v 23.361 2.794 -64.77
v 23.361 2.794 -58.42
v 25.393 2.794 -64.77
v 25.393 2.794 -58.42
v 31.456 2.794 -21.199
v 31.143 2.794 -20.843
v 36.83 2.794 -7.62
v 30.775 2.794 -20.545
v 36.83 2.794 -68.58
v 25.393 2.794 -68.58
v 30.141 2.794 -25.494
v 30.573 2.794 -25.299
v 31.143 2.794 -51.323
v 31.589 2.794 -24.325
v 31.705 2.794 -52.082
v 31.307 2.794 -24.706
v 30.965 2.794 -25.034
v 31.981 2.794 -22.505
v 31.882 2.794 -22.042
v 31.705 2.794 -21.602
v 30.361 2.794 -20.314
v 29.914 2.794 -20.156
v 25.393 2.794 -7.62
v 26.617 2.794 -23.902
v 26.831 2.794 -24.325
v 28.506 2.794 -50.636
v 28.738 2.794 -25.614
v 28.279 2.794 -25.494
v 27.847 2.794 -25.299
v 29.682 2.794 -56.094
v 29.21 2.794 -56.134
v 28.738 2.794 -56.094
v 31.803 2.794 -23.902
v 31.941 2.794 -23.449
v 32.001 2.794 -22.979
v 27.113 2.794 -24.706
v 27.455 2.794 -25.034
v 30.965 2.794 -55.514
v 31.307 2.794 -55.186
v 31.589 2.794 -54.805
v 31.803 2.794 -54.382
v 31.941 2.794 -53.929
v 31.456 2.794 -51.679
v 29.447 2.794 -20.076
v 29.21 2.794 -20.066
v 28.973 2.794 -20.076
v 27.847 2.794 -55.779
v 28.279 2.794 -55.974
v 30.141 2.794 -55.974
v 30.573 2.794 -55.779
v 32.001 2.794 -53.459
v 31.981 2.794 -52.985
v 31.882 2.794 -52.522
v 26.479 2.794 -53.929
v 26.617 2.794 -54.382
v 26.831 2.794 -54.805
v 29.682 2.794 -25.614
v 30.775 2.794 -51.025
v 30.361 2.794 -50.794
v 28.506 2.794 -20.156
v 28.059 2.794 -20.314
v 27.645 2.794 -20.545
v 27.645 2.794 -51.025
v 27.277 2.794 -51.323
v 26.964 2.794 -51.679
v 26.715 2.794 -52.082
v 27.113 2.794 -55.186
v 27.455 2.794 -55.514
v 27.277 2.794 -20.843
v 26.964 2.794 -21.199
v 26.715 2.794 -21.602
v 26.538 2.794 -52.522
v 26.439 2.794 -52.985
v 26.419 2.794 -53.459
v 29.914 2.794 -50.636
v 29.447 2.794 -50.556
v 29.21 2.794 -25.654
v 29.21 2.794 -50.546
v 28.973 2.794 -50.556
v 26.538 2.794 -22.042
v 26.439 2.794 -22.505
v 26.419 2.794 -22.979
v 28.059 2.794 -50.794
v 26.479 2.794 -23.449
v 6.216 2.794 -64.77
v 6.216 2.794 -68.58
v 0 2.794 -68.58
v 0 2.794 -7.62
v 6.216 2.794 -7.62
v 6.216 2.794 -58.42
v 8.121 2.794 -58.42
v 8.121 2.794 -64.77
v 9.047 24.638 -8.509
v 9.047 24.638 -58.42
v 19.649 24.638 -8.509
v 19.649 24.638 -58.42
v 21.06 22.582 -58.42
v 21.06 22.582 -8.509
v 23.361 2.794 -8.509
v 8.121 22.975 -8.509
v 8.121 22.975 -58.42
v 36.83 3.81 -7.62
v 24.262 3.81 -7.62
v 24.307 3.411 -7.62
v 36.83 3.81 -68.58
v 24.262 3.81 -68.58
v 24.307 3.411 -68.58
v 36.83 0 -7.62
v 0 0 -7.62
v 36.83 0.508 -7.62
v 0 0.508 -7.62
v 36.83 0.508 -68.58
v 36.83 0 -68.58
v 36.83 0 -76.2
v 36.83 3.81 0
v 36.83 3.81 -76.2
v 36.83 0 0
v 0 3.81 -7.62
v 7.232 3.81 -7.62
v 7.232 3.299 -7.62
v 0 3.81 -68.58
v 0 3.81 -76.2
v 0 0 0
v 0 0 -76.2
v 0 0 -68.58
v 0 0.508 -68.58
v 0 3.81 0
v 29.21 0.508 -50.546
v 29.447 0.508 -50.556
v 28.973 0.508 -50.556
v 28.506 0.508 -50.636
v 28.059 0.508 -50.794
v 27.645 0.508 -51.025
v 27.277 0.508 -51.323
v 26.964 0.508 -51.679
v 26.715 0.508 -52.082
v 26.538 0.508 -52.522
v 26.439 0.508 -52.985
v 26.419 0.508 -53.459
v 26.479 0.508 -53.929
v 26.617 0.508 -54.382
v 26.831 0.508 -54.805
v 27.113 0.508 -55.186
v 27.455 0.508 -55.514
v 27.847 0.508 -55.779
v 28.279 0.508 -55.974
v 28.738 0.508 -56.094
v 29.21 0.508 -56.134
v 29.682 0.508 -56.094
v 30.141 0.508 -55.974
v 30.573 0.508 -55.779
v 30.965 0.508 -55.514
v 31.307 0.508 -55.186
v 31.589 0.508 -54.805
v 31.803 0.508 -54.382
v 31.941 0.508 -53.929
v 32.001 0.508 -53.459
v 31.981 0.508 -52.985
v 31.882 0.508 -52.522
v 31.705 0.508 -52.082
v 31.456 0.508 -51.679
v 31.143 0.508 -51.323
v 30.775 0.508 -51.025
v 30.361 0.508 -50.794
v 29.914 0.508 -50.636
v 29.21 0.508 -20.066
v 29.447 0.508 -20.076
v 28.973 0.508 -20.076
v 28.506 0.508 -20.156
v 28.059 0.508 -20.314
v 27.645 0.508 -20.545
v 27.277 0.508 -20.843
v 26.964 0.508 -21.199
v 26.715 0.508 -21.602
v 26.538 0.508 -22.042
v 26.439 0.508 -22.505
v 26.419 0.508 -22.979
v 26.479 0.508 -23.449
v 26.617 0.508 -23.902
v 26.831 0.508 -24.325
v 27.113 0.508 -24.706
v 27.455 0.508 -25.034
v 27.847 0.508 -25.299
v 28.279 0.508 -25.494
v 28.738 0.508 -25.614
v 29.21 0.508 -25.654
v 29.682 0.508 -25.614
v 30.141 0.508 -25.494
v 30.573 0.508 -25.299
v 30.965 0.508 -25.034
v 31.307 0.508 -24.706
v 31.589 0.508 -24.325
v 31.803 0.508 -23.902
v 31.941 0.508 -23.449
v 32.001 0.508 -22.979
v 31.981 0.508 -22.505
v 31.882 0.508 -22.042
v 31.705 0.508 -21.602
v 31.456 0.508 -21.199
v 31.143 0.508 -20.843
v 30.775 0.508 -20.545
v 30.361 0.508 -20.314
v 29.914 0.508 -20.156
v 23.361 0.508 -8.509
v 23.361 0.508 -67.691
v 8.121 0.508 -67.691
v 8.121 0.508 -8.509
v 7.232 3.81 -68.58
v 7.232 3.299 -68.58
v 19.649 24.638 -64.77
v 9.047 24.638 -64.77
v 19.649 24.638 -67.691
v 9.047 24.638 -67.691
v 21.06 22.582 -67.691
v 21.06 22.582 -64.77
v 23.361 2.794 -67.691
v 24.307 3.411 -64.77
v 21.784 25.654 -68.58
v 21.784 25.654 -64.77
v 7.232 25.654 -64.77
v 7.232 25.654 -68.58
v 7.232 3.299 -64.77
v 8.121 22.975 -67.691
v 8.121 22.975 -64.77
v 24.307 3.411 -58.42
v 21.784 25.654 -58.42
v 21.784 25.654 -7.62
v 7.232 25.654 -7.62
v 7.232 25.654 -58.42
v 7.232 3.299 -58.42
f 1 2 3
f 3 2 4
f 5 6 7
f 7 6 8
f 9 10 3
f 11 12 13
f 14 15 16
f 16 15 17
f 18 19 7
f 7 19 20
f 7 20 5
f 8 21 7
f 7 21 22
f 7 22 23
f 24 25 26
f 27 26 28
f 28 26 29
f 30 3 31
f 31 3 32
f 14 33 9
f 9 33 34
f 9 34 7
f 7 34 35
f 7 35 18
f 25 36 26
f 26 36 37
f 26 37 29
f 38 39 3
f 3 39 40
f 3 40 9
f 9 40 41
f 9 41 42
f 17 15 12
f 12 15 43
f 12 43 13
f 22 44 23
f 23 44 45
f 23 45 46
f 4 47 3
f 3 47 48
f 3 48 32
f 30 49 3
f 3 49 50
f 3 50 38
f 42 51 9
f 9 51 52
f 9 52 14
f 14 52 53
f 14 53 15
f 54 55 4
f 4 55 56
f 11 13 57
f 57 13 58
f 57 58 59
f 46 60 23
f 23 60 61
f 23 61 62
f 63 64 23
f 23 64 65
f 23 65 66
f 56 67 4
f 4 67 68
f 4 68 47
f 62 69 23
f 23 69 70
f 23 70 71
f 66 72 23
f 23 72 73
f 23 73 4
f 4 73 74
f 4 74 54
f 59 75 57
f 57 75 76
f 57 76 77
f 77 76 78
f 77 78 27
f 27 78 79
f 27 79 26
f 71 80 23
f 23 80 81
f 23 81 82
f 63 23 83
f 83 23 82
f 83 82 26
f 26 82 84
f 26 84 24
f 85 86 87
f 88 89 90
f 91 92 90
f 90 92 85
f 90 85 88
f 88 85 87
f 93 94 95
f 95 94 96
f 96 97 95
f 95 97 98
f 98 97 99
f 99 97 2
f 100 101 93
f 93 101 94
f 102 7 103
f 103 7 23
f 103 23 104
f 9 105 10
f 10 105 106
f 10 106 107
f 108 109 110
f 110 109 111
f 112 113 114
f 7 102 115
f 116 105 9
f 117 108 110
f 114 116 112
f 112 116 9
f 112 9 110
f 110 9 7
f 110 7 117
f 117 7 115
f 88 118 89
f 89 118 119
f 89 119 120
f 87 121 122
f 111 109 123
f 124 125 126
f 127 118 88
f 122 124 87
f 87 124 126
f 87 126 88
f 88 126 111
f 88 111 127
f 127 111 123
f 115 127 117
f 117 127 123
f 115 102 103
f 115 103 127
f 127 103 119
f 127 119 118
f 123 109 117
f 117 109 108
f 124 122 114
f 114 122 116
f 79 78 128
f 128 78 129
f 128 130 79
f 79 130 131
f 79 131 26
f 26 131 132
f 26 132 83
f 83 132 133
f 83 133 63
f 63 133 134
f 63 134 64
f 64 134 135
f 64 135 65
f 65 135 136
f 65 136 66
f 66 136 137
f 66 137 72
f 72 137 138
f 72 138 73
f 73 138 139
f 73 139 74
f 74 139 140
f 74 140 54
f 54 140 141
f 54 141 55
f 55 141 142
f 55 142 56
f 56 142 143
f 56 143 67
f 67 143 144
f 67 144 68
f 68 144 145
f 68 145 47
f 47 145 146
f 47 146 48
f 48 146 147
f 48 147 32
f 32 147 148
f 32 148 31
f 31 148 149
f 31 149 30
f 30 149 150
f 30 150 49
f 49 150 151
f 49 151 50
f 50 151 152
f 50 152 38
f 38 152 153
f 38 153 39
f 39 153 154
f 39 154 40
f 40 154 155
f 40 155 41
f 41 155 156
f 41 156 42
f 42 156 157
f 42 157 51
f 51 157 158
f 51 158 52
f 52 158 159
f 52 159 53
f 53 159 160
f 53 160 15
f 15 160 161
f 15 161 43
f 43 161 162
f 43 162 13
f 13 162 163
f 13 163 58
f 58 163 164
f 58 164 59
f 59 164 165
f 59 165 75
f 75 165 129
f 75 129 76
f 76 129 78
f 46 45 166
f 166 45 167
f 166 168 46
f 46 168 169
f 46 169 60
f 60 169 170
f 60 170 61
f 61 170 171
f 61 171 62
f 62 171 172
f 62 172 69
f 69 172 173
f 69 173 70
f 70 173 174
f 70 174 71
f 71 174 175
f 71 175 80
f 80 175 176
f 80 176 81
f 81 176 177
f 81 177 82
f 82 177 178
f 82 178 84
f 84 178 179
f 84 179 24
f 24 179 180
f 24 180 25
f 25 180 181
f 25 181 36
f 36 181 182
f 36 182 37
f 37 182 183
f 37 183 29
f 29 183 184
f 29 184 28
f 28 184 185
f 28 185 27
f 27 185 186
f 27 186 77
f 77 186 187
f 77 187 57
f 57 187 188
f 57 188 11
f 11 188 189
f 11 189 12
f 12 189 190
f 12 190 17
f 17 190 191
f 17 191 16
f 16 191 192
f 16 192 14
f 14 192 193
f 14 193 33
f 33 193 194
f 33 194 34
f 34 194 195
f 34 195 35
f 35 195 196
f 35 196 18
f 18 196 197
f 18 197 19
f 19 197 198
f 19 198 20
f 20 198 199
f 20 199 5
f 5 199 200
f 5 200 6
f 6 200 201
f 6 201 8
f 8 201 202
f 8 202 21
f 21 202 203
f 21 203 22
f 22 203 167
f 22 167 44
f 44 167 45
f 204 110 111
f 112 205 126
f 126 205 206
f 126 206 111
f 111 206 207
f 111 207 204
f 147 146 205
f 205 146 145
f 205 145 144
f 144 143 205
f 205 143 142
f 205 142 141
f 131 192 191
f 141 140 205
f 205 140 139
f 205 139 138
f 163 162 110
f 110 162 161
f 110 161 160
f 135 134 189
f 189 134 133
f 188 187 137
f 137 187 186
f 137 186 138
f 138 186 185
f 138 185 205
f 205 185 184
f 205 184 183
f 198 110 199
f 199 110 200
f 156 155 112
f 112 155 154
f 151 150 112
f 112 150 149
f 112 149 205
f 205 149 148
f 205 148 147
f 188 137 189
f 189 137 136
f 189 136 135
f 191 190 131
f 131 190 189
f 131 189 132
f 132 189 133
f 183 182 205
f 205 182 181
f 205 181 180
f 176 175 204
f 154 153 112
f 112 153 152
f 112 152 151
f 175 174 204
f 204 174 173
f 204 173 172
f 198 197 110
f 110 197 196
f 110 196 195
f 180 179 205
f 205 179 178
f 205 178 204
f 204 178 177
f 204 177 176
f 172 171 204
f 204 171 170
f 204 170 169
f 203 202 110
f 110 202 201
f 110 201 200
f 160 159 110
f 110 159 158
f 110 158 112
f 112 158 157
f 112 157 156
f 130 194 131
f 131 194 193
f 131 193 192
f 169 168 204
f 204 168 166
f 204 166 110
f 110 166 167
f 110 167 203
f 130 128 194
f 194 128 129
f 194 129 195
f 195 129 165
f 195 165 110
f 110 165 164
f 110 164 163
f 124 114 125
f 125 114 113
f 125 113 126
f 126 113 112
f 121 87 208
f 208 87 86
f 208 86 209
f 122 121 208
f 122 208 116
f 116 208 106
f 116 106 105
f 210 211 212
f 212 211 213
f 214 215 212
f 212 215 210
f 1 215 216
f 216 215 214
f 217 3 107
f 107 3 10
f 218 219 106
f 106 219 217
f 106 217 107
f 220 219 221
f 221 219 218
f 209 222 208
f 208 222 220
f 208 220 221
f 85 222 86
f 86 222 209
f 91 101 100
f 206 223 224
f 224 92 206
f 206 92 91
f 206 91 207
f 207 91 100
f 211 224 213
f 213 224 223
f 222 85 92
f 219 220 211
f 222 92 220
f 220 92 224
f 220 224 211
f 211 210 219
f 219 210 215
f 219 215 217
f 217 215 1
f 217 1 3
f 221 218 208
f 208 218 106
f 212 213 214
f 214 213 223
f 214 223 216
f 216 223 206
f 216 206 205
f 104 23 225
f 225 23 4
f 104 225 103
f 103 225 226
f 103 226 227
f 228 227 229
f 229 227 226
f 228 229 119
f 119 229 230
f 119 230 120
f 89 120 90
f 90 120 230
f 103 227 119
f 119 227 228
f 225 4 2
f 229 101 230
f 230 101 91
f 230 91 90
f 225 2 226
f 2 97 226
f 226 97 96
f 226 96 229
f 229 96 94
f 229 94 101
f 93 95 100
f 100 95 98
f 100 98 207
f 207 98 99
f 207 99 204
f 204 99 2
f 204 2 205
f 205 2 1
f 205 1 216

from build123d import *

# Parameters (mm, degrees)
BOSS_EXTRUDE2_DEPTH   = 3.81
BOSS_EXTRUDE2_2_DEPTH = 3.81
BOSS_EXTRUDE3_START   = 0.508
SKETCH2_3_R           = 2.794
BOSS_EXTRUDE3_DEPTH   = 2.286
BOSS_EXTRUDE11_DEPTH  = 3.81
BOSS_EXTRUDE12_DEPTH  = 0.889
BOSS_EXTRUDE14_START  = 10.16
BOSS_EXTRUDE14_DEPTH  = 50.8
BOSS_EXTRUDE17_START  = 60.071
BOSS_EXTRUDE17_DEPTH  = 0.889
SKETCH14_W            = 15.24
SKETCH14_H            = 59.182
CUT_EXTRUDE3_DEPTH    = 88.666803866


with BuildPart() as part:
    # Sketch2 → Boss-Extrude2 (new body)
    with BuildSketch(Plane(origin=(0, 0, 0), x_dir=(1, 0, 0), z_dir=(0, 1, 0))):
        Polygon((0, 7.62), (0, 0), (36.83, 0), (36.83, 7.62), (7.62, 7.62), (6.87, 7.62), align=None)
    extrude(amount=BOSS_EXTRUDE2_DEPTH)



with BuildPart() as body_2:
    # Sketch2 → Boss-Extrude2 2 (new body)
    with BuildSketch(Plane(origin=(0, 0, 0), x_dir=(1, 0, 0), z_dir=(0, 1, 0))):
        Polygon((0, 76.2), (0, 68.58), (6.87, 68.58), (7.62, 68.58), (36.83, 68.58), (36.83, 76.2), align=None)
    extrude(amount=BOSS_EXTRUDE2_2_DEPTH)


with BuildPart() as part_1:
    add(part.part)

    add(body_2.part)  # Boss-Extrude3 merges body 2
    # Sketch2<3> → Boss-Extrude3 (add)
    # profile 1 of 2: a face of its own
    with BuildSketch(Plane(origin=(0, 0, 0), x_dir=(1, 0, 0), z_dir=(0, 1, 0)).offset(BOSS_EXTRUDE3_START)):
        Polygon((0, 68.58), (0, 7.62), (6.87, 7.62), (7.62, 7.62), (36.83, 7.62), (36.83, 68.58), (7.62, 68.58), (6.87, 68.58), align=None)
        with Locations(Location((29.21, 22.86, 0), (0, 0, 270))):
            Circle(SKETCH2_3_R, mode=Mode.SUBTRACT)
        with Locations(Location((29.21, 53.34, 0), (0, 0, 270))):
            Circle(SKETCH2_3_R, mode=Mode.SUBTRACT)
    # profile 2 of 2: a face of its own
    with BuildSketch(Plane(origin=(0, 0, 0), x_dir=(1, 0, 0), z_dir=(0, 1, 0)).offset(BOSS_EXTRUDE3_START)):
        Polygon((0, 68.58), (0, 7.62), (6.87, 7.62), (7.62, 7.62), (36.83, 7.62), (36.83, 68.58), (7.62, 68.58), (6.87, 68.58), align=None)
        with Locations(Location((29.21, 22.86, 0), (0, 0, 270))):
            Circle(SKETCH2_3_R, mode=Mode.SUBTRACT)
        with Locations(Location((29.21, 53.34, 0), (0, 0, 270))):
            Circle(SKETCH2_3_R, mode=Mode.SUBTRACT)
    extrude(amount=BOSS_EXTRUDE3_DEPTH)

    # Sketch13 → Boss-Extrude11 (add)
    with BuildSketch(Plane.XY.offset(-68.58)):
        Polygon((6.215980089, 2.794), (7.231980089, 2.794), (7.231980089, 3.298518966), align=None)
        Polygon((8.120980089, 2.794), (8.120980089, 3.81), (7.231980089, 3.81), (7.231980089, 3.298518966), (7.231980089, 2.794), align=None)
        Polygon((8.120980089, 3.81), (8.120980089, 22.975432281), (8.120980089, 24.638), (9.046534916, 24.638), (19.649280137, 24.638), (20.820980089, 24.638), (21.060045846, 22.582034491), (23.242840554, 3.81), (24.261745737, 3.81), (21.784207173, 25.654), (7.231980089, 25.654), (7.231980089, 3.81), align=None)
        Polygon((8.120980089, 24.638), (8.120980089, 22.975432281), (9.046534916, 24.638), align=None)
        Polygon((20.820980089, 24.638), (19.649280137, 24.638), (21.060045846, 22.582034491), align=None)
        Polygon((24.261745737, 3.81), (23.242840554, 3.81), (23.360980089, 2.794), (24.376980089, 2.794), (24.307041878, 3.410632288), align=None)
        Polygon((24.307041878, 3.410632288), (24.376980089, 2.794), (25.392980089, 2.794), align=None)
    extrude(amount=BOSS_EXTRUDE11_DEPTH)

    # Sketch13<3> → Boss-Extrude12 (add)
    with BuildSketch(Plane.XY.offset(-68.58)):
        Polygon((9.046534916, 24.638), (8.120980089, 22.975432281), (8.120980089, 3.81), (23.242840554, 3.81), (21.060045846, 22.582034491), (19.649280137, 24.638), align=None)
        Polygon((23.242840554, 3.81), (8.120980089, 3.81), (8.120980089, 2.794), (23.360980089, 2.794), align=None)
    extrude(amount=BOSS_EXTRUDE12_DEPTH)

    # Sketch13<6> → Boss-Extrude14 (add)
    with BuildSketch(Plane.XY.offset(-68.58).offset(BOSS_EXTRUDE14_START)):
        Polygon((24.307041878, 3.410632288), (24.376980089, 2.794), (25.392980089, 2.794), align=None)
        Polygon((24.261745737, 3.81), (23.242840554, 3.81), (23.360980089, 2.794), (24.376980089, 2.794), (24.307041878, 3.410632288), align=None)
        Polygon((8.120980089, 2.794), (8.120980089, 3.81), (7.231980089, 3.81), (7.231980089, 3.298518966), (7.231980089, 2.794), align=None)
        Polygon((6.215980089, 2.794), (7.231980089, 2.794), (7.231980089, 3.298518966), align=None)
        Polygon((8.120980089, 3.81), (8.120980089, 22.975432281), (8.120980089, 24.638), (9.046534916, 24.638), (19.649280137, 24.638), (20.820980089, 24.638), (21.060045846, 22.582034491), (23.242840554, 3.81), (24.261745737, 3.81), (21.784207173, 25.654), (7.231980089, 25.654), (7.231980089, 3.81), align=None)
        Polygon((20.820980089, 24.638), (19.649280137, 24.638), (21.060045846, 22.582034491), align=None)
        Polygon((8.120980089, 24.638), (8.120980089, 22.975432281), (9.046534916, 24.638), align=None)
    extrude(amount=BOSS_EXTRUDE14_DEPTH)

    # Sketch13<7> → Boss-Extrude17 (add)
    with BuildSketch(Plane.XY.offset(-68.58).offset(BOSS_EXTRUDE17_START)):
        Polygon((9.046534916, 24.638), (8.120980089, 22.975432281), (8.120980089, 3.81), (23.242840554, 3.81), (21.060045846, 22.582034491), (19.649280137, 24.638), align=None)
        Polygon((23.242840554, 3.81), (8.120980089, 3.81), (8.120980089, 2.794), (23.360980089, 2.794), align=None)
    extrude(amount=BOSS_EXTRUDE17_DEPTH)

    # Sketch14 → Cut-Extrude3 (cut, through all)
    with BuildSketch(Plane(origin=(0, 2.794, 0), x_dir=(1, 0, 0), z_dir=(0, 1, 0))):
        with Locations((15.740980089, 38.1)):
            Rectangle(SKETCH14_W, SKETCH14_H)
    extrude(amount=-CUT_EXTRUDE3_DEPTH, mode=Mode.SUBTRACT)


solid = part_1.part
